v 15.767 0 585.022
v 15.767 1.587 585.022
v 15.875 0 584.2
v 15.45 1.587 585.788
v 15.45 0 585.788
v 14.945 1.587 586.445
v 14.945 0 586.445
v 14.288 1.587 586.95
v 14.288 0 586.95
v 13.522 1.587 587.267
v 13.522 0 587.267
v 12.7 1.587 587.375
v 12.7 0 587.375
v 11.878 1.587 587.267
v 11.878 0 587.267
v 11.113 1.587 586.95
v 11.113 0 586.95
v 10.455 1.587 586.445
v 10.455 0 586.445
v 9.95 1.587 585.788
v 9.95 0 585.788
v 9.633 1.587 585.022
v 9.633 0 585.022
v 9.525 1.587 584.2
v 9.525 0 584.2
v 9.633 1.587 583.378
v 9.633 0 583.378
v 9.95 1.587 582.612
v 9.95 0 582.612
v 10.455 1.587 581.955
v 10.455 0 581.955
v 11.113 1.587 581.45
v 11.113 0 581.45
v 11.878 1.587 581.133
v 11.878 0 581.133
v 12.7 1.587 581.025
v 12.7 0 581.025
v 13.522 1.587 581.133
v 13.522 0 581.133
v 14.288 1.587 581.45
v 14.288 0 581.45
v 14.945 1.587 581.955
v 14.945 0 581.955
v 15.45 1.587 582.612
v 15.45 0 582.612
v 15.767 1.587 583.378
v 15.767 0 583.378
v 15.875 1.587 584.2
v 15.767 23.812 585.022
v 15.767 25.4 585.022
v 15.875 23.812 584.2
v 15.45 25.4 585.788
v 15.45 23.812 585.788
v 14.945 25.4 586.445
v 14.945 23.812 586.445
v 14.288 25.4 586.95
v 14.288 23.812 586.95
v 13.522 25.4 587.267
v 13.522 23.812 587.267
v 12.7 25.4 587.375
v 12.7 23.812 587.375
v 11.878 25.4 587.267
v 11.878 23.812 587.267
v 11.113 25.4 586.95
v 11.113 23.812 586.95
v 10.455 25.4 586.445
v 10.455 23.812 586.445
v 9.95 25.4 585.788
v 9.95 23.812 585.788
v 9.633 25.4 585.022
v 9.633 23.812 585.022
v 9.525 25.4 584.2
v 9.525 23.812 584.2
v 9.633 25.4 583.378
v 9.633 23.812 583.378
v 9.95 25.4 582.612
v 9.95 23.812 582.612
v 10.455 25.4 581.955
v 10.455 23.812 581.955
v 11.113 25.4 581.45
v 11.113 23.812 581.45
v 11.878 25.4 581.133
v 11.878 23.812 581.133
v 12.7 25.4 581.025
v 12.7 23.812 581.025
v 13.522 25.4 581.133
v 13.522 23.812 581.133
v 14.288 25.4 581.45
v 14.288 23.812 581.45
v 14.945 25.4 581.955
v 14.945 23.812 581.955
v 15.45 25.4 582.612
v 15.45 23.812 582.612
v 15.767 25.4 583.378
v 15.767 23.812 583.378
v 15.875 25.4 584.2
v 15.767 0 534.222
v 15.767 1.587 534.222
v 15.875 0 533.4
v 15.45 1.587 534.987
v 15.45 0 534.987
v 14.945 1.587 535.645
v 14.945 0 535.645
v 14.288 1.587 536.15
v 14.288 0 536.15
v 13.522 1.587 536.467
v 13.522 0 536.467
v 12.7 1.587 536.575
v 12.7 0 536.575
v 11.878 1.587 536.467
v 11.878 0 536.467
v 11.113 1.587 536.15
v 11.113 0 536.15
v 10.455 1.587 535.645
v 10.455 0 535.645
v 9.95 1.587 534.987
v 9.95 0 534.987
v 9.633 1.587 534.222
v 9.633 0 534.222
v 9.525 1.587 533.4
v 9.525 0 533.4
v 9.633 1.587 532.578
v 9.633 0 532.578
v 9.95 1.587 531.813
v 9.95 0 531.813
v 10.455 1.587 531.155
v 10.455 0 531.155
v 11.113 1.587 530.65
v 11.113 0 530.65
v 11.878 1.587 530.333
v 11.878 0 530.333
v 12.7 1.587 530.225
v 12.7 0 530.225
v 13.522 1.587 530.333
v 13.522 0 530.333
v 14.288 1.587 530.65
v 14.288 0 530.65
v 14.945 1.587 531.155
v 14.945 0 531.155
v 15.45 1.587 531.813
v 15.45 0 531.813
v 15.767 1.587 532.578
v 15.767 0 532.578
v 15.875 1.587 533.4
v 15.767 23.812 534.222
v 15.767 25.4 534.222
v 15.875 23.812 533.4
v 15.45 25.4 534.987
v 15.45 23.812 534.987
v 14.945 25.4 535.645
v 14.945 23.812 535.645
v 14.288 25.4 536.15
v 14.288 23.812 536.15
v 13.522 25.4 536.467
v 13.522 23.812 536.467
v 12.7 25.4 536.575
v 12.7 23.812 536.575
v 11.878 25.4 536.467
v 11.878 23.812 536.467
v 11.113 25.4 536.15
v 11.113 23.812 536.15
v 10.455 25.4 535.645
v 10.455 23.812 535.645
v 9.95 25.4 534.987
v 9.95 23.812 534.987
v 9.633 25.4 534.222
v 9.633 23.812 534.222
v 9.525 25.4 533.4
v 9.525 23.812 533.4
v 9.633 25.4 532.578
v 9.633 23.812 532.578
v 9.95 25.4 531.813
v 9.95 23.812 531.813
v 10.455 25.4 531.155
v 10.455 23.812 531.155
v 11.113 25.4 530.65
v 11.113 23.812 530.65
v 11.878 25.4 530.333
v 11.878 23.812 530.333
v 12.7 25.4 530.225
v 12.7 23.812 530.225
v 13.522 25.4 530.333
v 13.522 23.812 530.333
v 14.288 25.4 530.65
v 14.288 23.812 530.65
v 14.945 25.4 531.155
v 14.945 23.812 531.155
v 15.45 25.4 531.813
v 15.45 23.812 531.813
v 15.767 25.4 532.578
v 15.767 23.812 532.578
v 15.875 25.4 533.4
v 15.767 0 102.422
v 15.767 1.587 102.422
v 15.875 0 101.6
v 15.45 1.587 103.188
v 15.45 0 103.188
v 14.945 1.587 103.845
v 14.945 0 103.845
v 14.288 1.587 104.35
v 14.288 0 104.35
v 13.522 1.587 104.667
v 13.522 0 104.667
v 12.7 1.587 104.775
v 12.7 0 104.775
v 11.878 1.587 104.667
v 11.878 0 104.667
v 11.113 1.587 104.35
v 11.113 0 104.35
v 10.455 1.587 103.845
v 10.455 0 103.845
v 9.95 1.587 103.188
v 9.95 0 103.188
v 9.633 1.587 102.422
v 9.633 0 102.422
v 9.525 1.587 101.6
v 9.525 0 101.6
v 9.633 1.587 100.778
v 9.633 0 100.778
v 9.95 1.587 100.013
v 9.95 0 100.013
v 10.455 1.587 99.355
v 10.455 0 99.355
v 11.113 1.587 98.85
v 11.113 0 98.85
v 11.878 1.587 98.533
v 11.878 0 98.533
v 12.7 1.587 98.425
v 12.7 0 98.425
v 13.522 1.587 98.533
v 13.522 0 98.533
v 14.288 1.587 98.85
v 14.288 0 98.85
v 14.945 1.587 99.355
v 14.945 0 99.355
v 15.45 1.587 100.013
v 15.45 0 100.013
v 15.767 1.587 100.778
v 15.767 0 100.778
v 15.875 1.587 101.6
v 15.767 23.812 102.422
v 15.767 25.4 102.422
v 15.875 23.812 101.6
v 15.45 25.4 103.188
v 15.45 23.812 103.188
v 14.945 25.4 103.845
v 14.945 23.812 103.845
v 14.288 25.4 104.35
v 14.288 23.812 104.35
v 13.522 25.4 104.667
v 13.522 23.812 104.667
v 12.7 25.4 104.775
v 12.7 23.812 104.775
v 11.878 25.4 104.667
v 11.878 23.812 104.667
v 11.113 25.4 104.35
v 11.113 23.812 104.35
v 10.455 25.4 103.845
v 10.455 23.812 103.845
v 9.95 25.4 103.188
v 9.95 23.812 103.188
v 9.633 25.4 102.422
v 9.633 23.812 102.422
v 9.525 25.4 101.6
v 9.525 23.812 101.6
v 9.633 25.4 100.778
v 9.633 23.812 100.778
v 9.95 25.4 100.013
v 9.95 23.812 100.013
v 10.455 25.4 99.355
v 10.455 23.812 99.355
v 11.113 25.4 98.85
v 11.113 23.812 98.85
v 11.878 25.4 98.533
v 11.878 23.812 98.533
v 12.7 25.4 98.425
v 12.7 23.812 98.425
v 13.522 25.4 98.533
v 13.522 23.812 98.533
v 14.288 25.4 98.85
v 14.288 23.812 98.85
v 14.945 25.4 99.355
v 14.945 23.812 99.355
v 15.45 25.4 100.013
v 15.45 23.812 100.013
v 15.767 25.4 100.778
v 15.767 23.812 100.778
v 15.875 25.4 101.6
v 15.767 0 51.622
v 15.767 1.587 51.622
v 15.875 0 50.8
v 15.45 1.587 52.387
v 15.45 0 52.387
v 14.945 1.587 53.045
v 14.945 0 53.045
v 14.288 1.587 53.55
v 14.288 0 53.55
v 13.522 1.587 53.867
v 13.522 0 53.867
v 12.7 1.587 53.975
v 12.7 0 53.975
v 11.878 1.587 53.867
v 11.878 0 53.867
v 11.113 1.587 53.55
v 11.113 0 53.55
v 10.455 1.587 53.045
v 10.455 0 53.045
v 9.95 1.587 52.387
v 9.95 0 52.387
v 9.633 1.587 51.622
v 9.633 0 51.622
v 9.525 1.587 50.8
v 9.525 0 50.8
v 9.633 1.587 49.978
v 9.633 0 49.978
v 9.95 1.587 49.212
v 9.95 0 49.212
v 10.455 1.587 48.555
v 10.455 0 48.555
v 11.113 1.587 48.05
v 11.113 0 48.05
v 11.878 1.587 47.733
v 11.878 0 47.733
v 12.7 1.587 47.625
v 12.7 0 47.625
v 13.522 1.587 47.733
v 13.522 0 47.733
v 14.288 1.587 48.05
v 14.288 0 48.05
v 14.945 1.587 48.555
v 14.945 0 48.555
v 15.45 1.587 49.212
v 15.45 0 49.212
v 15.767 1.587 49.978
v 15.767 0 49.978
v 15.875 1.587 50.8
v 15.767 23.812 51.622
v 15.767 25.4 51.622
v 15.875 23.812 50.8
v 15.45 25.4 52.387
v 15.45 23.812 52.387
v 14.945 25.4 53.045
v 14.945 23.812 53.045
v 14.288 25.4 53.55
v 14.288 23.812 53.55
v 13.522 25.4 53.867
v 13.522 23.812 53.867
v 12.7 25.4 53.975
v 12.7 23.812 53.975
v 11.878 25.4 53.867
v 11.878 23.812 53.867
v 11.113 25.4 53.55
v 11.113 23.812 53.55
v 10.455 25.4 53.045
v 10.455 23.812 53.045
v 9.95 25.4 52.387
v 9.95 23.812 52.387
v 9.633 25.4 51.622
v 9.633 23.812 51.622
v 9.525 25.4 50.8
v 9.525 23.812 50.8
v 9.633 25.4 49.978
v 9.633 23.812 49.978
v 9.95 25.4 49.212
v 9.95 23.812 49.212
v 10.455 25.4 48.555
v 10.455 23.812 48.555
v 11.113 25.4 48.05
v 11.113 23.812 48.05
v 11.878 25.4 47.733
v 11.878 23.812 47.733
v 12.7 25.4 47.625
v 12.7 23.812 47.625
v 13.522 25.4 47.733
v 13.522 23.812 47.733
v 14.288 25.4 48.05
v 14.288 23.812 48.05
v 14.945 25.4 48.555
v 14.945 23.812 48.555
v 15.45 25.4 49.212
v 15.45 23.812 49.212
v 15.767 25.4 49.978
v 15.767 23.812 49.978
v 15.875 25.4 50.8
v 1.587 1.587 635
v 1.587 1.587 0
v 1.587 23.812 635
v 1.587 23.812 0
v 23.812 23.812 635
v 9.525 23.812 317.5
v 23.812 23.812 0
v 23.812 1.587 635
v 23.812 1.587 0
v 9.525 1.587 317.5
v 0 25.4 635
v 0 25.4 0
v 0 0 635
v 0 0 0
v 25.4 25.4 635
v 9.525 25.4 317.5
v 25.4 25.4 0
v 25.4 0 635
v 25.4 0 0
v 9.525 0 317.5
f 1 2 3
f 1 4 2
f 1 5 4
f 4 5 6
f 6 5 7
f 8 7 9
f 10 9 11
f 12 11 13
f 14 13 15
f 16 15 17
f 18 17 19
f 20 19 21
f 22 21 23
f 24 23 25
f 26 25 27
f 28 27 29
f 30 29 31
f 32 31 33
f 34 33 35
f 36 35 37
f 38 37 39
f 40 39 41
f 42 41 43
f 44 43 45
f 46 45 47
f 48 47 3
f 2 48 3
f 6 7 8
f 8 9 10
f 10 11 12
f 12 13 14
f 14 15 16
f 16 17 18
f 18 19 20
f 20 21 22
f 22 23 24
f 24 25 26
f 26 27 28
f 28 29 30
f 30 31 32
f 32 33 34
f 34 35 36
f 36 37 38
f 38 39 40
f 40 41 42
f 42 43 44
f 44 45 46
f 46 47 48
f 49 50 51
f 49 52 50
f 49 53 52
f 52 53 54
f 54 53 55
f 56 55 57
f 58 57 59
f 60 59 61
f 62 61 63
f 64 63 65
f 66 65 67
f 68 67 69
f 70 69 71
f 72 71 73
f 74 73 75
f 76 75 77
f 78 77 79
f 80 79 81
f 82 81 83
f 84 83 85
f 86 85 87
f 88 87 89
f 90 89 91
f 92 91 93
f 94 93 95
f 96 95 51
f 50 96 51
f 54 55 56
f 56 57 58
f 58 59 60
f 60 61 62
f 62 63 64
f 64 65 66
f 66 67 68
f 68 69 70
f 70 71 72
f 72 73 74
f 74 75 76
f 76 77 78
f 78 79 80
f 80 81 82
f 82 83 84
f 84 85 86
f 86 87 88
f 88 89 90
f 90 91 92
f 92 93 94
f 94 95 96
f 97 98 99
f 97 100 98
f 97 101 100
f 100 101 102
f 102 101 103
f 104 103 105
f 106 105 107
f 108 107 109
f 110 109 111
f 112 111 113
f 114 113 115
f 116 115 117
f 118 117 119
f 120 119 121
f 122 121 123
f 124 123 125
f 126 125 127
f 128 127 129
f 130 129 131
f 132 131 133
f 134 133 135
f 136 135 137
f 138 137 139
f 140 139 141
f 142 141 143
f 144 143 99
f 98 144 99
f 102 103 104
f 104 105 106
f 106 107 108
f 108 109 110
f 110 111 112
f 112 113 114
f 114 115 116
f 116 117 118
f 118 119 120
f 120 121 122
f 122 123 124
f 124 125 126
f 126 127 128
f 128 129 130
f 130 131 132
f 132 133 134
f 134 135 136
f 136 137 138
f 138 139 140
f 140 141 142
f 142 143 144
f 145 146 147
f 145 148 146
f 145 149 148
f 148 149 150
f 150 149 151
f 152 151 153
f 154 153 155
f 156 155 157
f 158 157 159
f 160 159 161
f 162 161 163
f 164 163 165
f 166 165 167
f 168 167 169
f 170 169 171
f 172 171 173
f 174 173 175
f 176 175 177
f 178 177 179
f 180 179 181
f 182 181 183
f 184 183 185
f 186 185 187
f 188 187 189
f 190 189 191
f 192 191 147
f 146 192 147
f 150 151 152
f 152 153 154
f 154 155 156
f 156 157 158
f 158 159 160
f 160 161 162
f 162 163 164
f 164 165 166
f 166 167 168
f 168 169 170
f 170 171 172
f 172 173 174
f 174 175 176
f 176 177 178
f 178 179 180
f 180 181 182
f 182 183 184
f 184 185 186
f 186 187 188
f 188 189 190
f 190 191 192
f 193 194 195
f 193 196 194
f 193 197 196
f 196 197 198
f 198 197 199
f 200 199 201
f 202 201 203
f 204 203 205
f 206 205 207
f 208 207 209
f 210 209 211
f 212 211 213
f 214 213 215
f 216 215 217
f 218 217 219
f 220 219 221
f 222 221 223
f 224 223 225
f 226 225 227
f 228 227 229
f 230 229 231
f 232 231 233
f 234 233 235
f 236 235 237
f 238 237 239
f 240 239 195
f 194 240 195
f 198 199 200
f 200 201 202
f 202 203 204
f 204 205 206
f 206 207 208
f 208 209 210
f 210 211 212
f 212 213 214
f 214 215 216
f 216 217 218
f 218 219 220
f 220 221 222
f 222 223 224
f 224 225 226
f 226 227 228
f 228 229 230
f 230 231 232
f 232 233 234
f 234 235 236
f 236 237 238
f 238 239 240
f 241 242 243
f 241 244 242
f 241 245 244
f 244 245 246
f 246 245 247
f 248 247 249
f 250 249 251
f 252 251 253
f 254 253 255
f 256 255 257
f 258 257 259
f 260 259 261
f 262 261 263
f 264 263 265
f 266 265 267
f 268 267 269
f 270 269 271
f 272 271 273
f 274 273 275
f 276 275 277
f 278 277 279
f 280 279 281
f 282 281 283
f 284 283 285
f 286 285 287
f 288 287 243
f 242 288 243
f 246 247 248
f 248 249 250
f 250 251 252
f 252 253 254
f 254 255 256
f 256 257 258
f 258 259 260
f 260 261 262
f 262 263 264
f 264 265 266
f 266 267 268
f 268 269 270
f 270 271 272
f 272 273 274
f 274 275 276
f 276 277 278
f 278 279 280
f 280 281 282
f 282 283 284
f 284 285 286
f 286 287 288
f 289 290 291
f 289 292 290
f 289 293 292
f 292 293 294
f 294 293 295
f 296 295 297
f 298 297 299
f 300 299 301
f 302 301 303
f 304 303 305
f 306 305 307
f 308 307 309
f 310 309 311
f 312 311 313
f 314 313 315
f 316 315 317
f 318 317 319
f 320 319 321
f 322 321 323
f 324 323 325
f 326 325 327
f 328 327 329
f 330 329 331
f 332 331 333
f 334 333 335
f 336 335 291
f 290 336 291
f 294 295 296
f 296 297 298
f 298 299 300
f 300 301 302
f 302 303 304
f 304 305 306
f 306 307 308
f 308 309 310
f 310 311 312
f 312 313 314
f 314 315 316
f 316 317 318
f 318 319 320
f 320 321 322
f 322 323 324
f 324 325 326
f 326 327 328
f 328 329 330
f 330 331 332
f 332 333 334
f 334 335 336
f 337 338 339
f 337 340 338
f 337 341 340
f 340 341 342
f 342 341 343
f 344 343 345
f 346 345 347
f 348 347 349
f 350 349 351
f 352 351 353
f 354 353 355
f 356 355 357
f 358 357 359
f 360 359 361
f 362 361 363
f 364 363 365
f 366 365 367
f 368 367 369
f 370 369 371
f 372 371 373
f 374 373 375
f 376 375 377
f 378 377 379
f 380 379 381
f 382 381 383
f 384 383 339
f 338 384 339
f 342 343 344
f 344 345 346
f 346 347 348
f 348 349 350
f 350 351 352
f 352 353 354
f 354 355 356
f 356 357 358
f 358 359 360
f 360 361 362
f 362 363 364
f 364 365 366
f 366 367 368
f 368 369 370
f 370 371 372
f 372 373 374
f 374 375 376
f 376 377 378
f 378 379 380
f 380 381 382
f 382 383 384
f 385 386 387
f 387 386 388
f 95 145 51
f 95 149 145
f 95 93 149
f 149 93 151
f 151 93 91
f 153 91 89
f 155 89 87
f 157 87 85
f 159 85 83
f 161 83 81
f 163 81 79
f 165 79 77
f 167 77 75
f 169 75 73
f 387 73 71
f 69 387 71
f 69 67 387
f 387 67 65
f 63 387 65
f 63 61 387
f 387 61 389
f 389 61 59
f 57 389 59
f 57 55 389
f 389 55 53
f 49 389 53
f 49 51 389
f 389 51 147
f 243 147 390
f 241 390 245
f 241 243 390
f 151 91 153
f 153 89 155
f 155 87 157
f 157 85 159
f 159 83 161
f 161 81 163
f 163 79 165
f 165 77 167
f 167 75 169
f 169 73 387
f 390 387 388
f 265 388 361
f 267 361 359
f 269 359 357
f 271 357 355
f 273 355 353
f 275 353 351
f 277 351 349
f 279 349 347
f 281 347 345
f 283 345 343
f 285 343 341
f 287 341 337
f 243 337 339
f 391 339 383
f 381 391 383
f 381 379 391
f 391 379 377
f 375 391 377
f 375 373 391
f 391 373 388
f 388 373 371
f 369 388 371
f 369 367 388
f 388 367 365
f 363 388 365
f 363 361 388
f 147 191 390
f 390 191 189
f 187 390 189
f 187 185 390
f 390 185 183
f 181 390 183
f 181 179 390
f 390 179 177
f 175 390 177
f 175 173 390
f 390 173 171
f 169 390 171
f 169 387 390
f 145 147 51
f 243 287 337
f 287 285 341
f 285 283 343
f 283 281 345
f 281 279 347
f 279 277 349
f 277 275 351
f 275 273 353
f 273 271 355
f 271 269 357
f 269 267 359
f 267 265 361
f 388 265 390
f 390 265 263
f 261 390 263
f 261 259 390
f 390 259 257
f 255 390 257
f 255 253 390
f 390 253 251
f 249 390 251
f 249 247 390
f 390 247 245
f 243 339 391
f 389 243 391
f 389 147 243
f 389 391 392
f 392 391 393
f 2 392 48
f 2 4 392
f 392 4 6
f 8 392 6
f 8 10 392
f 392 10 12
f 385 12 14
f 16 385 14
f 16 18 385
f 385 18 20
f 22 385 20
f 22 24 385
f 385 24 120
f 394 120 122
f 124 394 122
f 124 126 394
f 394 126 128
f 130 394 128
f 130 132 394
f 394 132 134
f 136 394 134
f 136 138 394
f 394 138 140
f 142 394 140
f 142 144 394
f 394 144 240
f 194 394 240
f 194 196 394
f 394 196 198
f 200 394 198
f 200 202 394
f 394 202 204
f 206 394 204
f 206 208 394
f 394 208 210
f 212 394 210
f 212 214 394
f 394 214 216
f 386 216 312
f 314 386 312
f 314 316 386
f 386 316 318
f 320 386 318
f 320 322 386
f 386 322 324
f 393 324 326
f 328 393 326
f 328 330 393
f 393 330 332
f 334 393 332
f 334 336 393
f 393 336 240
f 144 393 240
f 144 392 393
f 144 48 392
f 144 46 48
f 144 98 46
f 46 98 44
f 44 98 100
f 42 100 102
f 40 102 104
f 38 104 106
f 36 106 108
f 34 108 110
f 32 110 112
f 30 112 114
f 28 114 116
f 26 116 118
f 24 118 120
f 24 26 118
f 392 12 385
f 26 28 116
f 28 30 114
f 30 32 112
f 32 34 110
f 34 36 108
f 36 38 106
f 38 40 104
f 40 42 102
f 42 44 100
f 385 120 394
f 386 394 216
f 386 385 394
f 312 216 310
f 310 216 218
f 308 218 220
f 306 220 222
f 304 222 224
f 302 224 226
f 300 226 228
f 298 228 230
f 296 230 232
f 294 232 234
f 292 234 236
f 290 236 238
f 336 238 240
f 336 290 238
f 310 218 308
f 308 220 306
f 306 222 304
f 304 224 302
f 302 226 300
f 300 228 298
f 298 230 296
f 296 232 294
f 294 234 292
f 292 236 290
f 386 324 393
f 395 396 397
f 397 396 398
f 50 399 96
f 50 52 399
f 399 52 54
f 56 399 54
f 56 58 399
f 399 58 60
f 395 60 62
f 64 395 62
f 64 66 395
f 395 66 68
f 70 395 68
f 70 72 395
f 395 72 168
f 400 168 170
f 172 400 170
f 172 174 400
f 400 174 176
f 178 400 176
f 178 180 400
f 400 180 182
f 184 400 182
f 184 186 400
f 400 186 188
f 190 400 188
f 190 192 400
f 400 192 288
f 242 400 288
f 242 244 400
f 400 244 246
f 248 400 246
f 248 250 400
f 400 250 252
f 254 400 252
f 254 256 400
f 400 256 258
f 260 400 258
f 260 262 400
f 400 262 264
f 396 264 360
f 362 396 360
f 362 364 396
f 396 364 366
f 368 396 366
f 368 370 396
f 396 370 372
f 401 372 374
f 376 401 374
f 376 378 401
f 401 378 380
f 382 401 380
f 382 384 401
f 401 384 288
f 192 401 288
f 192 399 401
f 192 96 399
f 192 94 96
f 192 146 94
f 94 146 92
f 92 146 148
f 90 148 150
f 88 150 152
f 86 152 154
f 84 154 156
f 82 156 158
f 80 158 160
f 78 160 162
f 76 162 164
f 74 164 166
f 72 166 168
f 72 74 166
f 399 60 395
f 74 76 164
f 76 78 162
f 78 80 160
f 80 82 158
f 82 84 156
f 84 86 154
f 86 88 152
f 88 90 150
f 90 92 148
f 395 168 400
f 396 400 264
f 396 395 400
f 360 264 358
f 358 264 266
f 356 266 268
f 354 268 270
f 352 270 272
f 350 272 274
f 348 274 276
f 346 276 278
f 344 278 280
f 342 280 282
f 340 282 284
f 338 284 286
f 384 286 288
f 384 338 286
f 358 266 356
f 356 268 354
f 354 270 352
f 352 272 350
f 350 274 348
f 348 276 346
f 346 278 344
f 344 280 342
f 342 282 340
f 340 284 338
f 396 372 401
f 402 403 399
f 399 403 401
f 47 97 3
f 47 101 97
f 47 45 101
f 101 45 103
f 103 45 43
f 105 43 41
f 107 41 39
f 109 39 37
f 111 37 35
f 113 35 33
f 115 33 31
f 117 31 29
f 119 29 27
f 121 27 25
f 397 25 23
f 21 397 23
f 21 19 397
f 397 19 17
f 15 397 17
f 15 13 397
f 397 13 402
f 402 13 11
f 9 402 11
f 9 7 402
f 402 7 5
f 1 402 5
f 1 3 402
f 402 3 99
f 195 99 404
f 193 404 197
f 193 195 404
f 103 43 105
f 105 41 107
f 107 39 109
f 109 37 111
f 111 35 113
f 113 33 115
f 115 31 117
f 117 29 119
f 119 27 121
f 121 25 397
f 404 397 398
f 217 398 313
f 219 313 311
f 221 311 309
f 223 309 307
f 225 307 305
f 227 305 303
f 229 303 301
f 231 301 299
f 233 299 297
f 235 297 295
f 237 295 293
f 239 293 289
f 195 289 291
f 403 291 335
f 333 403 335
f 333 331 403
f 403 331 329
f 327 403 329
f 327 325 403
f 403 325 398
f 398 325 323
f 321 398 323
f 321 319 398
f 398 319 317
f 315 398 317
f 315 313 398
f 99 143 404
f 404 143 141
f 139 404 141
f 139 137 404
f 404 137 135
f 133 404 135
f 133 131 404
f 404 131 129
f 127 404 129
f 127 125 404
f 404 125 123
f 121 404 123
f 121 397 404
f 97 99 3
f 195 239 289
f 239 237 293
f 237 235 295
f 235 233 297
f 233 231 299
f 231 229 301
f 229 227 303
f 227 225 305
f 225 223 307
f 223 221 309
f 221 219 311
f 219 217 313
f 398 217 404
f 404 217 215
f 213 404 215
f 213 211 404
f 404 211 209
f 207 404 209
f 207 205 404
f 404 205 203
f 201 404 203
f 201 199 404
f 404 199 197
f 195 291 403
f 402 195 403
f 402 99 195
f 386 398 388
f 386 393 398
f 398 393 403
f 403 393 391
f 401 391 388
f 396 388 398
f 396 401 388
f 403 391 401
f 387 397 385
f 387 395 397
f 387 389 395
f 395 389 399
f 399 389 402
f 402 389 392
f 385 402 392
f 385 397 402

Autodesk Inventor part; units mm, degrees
ref_plane "YZ Plane" through (0, 0, 0) normal (1, 0, 0) x (0, 1, 0)
ref_plane "XZ Plane" through (0, 0, 0) normal (0, 1, 0) x (-1, 0, 0)
ref_plane "XY Plane" through (0, 0, 0) normal (0, 0, 1) x (1, 0, 0)
sketch "Sketch1" plane through (0, 0, 0) normal (0, 0, 1) x (1, 0, 0)
  line L0 (0, 0) -> (25.4, 0)
  line L1 (25.4, 0) -> (25.4, 25.4)
  line L2 (25.4, 25.4) -> (0, 25.4)
  line L3 (0, 25.4) -> (0, 0)
  dimension "d0" = 25.4
  dimension "d1" = 25.4
extrude "Extrusion1" add sketch "Sketch1" along normal blind 635
shell "Shell1" thickness 1.5875 removed faces 2 at (8.4667, 16.9333, 0) at (16.9333, 8.4667, 635)
sketch "Sketch2" plane through (0, 25.4, 0) normal (0, 1, 0) x (1, 0, 0)
  line L0 (0, -635) -> (25.4, -635) projected
  line L1 (25.4, 0) -> (0, 0) projected
  line L2 (0, 0) -> (0, -635) projected
  circle A0 centre (12.7, -50.8) radius 3.175
  circle A1 centre (12.7, -101.6) radius 3.175
  circle A2 centre (12.7, -533.4) radius 3.175
  circle A3 centre (12.7, -584.2) radius 3.175
  dimension "d7" = 50.8
  dimension "d8" = 50.8
  dimension "d9" = 12.7
  dimension "d10" = 12.7
  dimension "d11" = 6.35
  dimension "d12" = 6.35
  dimension "d13" = 12.7
  dimension "d14" = 12.7
  dimension "d15" = 50.8
  dimension "d16" = 50.8
  dimension "d17" = 6.35
  dimension "d18" = 6.35
extrude "Extrusion2" cut sketch "Sketch2" against normal through all
properties part number "DriveTrain_SideRail" material "Aluminum-6061"
